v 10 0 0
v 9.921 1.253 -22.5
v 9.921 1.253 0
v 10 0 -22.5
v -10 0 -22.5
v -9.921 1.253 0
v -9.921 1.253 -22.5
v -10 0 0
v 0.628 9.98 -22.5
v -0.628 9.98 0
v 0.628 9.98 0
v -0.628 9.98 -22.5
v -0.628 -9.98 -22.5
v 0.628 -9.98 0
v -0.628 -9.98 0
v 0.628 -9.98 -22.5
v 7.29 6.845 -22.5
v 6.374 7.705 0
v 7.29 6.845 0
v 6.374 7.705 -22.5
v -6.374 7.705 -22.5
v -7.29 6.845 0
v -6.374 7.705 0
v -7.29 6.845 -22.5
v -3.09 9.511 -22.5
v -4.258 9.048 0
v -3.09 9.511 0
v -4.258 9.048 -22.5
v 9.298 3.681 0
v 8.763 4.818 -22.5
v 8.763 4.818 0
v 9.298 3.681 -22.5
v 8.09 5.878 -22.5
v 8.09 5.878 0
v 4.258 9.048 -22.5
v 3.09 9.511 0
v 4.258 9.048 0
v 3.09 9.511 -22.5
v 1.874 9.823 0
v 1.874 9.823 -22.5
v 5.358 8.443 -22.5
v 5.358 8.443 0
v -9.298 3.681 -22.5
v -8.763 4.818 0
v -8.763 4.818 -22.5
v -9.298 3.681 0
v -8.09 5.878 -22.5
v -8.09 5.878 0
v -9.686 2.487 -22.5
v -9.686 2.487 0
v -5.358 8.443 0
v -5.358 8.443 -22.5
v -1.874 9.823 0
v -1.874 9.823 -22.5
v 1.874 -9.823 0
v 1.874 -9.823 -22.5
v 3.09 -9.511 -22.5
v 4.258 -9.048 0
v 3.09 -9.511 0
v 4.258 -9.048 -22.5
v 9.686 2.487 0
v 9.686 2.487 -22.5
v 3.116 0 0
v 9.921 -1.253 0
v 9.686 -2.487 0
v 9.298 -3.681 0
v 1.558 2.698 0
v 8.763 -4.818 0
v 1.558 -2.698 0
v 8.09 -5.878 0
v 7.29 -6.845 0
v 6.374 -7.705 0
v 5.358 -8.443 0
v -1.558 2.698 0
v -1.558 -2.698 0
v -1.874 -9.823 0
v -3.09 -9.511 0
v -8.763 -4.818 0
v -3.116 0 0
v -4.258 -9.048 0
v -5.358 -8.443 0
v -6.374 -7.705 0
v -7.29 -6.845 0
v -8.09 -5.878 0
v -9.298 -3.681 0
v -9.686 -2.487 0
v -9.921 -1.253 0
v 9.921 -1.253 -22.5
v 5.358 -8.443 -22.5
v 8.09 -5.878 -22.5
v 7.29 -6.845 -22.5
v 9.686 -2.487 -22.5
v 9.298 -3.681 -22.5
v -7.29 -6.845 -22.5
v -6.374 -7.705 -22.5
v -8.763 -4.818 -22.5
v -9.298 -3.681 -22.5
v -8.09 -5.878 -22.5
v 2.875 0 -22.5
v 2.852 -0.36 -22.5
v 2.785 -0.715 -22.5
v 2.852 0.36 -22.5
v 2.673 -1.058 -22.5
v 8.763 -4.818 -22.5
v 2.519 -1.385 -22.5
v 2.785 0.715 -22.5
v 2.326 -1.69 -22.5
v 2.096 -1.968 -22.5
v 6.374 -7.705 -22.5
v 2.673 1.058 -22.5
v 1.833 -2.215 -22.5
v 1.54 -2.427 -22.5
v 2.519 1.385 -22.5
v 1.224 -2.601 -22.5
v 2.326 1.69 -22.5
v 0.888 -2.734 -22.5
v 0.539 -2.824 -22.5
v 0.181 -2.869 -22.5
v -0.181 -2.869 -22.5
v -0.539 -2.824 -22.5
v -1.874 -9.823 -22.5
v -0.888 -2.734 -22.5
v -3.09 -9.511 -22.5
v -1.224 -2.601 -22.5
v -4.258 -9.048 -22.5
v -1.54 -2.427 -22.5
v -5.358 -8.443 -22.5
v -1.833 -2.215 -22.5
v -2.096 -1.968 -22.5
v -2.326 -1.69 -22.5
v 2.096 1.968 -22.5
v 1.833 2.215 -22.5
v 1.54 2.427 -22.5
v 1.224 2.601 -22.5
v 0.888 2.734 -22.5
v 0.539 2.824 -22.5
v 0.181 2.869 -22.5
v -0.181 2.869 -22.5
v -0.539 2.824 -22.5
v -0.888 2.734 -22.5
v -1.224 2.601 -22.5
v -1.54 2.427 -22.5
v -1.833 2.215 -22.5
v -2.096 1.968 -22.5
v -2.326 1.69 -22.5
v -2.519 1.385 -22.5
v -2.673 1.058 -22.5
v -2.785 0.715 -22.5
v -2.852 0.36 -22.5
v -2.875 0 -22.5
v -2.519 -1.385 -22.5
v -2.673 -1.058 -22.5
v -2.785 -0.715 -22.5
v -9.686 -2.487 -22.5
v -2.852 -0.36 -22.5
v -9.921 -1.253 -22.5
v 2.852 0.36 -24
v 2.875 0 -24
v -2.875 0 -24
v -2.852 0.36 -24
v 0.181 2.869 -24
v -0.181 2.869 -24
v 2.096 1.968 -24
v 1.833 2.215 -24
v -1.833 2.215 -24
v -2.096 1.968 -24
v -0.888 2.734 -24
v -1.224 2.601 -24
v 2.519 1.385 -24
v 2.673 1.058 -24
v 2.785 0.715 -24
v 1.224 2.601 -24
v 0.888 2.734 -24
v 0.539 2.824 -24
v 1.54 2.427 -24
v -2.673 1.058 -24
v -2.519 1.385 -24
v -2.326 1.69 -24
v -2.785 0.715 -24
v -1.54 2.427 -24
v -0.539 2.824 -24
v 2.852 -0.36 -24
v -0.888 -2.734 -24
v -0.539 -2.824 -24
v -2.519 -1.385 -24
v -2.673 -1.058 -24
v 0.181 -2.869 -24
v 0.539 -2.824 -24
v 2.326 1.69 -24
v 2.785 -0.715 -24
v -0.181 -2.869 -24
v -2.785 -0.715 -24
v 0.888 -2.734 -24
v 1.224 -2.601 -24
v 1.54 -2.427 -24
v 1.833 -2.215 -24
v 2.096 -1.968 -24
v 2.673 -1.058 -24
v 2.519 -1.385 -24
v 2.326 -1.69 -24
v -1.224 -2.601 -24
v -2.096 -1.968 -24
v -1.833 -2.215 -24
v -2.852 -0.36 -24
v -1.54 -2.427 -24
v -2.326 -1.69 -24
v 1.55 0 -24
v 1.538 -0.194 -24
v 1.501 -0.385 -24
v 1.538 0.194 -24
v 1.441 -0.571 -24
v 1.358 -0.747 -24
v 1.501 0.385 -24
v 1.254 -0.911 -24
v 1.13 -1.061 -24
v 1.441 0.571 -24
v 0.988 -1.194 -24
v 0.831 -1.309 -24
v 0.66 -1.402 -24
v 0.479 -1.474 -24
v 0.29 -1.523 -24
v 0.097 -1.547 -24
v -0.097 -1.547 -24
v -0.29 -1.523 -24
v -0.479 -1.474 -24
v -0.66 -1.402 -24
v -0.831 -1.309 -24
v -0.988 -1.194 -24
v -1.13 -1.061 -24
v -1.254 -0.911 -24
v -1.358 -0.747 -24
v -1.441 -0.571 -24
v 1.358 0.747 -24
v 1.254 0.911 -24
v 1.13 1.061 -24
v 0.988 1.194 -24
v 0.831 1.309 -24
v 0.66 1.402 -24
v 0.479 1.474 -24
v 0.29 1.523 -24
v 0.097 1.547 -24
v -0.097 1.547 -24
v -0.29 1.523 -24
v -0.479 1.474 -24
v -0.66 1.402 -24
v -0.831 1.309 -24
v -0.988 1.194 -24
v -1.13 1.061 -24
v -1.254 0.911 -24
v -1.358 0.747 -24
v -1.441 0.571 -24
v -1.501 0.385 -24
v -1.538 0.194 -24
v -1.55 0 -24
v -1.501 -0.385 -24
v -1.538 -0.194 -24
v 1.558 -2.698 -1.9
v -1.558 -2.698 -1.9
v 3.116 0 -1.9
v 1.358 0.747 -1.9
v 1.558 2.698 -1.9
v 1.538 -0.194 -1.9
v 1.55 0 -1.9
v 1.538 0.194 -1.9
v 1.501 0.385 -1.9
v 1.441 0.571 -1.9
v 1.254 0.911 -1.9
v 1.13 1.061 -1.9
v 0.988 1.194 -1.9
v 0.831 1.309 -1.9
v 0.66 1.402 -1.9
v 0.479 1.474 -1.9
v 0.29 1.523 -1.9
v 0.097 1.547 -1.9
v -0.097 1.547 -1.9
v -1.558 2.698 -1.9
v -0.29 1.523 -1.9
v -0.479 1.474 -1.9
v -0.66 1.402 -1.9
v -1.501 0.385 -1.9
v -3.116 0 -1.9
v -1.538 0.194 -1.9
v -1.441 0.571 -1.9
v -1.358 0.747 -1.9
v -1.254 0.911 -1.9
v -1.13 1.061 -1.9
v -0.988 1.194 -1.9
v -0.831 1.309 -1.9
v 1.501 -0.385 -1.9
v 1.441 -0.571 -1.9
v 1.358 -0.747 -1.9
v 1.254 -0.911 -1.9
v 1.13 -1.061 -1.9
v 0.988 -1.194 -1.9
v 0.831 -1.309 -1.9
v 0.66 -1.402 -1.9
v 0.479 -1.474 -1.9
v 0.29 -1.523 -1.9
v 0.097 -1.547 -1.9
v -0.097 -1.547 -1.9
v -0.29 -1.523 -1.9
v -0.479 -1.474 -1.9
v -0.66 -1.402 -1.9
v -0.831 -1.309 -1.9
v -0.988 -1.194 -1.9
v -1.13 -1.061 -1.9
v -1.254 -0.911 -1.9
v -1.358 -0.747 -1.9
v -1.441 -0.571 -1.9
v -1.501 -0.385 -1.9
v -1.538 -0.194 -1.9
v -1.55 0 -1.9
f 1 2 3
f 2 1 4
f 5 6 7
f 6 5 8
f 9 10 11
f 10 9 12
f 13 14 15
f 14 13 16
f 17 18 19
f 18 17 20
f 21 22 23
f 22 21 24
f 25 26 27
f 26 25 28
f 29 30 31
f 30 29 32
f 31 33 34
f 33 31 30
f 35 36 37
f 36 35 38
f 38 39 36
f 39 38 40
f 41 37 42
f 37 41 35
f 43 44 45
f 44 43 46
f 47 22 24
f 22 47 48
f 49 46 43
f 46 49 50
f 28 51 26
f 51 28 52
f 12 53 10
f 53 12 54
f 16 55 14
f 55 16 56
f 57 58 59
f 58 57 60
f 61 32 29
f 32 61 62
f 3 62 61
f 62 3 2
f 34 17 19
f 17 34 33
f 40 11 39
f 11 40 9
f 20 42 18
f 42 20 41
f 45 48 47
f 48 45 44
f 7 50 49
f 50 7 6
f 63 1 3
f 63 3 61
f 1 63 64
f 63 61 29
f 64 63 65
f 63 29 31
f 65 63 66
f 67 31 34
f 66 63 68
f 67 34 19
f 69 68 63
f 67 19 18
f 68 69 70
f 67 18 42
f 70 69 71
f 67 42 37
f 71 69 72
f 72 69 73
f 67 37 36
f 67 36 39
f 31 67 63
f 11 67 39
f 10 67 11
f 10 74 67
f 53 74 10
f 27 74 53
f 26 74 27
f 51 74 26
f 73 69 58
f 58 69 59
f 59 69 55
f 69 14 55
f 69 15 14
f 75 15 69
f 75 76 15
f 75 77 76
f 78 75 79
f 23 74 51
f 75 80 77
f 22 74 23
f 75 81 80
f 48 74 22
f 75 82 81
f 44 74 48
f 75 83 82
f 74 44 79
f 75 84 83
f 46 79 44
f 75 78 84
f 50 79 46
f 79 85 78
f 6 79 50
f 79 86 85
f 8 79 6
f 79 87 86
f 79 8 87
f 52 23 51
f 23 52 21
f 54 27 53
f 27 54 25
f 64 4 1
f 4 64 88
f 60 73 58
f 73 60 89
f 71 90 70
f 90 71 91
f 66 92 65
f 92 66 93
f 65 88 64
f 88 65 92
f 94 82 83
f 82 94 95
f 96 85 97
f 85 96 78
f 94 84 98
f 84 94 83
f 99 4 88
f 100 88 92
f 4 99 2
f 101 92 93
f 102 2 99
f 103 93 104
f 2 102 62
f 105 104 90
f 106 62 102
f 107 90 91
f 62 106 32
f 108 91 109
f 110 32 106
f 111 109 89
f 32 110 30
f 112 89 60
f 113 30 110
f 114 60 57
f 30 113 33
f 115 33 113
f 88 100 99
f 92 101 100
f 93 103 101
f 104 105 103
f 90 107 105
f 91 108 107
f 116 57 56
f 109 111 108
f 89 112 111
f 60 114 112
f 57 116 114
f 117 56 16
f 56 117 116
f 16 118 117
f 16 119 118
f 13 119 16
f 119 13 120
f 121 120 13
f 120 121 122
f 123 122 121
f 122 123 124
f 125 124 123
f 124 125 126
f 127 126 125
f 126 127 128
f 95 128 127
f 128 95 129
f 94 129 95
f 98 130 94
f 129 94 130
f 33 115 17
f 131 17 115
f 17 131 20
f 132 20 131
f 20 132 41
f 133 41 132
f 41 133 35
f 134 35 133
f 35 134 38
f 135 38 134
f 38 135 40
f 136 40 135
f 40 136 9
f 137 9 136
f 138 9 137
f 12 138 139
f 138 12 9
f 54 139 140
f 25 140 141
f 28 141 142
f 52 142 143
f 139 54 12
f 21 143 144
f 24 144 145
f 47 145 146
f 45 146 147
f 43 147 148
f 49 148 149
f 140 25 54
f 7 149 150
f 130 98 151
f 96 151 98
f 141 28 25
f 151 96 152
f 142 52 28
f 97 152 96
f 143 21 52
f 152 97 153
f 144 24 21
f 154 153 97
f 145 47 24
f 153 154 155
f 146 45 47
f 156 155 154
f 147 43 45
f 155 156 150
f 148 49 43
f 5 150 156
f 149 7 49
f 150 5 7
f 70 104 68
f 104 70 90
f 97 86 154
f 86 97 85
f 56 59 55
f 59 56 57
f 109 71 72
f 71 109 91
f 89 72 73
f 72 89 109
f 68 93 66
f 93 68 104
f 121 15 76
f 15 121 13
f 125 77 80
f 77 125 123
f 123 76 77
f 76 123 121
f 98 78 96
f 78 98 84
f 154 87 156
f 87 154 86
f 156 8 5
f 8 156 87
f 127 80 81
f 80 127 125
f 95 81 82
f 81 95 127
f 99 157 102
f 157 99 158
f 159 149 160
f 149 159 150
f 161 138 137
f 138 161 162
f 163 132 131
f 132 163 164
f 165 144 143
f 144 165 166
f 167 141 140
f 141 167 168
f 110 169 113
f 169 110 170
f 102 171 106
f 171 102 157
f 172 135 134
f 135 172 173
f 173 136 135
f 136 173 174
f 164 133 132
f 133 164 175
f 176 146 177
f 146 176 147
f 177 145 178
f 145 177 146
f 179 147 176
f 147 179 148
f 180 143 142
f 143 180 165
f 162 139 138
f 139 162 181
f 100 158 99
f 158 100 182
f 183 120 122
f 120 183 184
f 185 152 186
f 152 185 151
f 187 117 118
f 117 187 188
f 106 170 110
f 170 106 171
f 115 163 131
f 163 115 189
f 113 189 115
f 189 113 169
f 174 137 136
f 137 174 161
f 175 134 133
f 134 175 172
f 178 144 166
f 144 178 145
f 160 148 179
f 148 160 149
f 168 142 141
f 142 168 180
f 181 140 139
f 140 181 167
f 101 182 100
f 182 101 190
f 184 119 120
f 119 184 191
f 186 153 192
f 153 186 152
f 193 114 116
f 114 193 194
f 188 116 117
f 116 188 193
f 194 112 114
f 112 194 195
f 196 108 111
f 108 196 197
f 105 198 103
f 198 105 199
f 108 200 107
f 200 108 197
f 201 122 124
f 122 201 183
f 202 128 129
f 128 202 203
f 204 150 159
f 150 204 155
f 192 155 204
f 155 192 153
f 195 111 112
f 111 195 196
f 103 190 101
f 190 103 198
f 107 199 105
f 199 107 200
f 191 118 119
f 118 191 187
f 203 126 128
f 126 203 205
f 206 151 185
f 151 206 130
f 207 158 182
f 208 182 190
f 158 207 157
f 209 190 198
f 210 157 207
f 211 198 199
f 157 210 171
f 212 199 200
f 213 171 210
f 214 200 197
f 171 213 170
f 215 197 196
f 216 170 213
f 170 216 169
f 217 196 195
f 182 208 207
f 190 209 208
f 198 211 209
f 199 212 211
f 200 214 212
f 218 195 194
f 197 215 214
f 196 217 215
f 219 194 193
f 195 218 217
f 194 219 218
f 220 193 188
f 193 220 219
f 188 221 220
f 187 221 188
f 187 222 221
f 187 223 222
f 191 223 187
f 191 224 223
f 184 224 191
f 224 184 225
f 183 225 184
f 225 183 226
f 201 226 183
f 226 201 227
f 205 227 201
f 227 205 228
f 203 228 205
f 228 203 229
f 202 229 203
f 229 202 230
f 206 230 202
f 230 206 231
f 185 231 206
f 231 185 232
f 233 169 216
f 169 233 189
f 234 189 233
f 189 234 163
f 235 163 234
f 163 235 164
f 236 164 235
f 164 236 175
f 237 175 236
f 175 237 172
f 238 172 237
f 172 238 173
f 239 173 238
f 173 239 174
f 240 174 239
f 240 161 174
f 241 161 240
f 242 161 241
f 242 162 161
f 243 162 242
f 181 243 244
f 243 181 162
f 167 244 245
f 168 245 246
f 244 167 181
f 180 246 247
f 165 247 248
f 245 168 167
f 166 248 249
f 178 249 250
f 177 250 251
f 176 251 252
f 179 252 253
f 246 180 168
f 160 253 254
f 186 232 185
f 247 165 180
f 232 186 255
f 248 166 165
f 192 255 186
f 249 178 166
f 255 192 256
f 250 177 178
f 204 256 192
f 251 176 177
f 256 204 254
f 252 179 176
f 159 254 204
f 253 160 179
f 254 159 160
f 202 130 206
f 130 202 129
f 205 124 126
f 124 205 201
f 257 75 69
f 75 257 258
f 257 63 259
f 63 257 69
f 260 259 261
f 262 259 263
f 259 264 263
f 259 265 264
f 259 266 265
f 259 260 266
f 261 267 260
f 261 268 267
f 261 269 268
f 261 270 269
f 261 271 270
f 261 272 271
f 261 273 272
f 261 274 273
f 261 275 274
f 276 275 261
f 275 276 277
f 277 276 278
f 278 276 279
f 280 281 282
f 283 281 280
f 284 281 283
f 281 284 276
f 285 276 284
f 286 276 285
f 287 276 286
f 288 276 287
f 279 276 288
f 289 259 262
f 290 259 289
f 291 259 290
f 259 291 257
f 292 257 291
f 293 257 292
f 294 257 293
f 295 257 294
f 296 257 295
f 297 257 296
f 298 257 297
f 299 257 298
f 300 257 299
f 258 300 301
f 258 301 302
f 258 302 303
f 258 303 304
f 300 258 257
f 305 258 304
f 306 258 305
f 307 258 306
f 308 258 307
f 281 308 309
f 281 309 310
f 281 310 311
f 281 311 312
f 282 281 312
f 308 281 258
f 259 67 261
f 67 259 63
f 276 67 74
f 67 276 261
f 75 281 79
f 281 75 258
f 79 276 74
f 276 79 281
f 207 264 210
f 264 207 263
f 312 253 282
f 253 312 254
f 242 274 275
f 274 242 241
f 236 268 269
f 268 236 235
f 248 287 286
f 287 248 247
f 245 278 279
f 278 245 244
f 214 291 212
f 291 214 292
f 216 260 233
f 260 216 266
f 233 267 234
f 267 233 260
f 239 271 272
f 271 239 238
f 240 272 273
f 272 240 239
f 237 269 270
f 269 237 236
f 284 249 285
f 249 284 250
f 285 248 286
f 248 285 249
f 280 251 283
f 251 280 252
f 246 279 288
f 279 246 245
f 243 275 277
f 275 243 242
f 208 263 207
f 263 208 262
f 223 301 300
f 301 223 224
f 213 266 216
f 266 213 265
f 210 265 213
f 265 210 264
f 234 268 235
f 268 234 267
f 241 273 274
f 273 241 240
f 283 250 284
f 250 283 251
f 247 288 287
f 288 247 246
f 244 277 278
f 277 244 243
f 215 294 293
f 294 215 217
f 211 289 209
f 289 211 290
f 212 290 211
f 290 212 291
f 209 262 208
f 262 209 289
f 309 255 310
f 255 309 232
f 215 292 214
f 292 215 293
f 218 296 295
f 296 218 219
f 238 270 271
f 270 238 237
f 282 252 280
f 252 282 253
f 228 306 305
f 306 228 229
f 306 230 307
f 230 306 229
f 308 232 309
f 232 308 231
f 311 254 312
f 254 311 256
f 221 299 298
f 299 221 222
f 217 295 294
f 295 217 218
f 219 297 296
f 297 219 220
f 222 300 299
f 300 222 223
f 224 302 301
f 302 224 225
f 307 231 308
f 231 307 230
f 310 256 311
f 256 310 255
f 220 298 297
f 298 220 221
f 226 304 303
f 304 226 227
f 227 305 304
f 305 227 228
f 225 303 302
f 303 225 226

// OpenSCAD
$fn = 50;

difference() {
	union() {
		translate(v = [0, 0, -22.5]) {
			cylinder(h = 22.5, r = 10.0);
		}
		#translate(v = [0, 0, -24.0]) {
			cylinder(h = 24, r = 2.875);
		}
	}
	union() {
		translate(v = [0, 0, 0]) {
			rotate(a = [0, 0, 0]) {
				difference() {
					union() {
						translate(v = [0, 0, -1.9]) {
							linear_extrude(height = 1.9) {
								polygon(points = [[3.1158, 0.0], [1.5579000000000005, 2.698361953111554], [-1.5578999999999994, 2.6983619531115544], [-3.1158, 3.815754496783323e-16], [-1.5579000000000014, -2.6983619531115535], [1.557899999999998, -2.6983619531115552]]);
							}
						}
					}
					union();
				}
			}
		}
		#translate(v = [0, 0, -100.0]) {
			cylinder(h = 200, r = 1.55);
		}
	}
}
